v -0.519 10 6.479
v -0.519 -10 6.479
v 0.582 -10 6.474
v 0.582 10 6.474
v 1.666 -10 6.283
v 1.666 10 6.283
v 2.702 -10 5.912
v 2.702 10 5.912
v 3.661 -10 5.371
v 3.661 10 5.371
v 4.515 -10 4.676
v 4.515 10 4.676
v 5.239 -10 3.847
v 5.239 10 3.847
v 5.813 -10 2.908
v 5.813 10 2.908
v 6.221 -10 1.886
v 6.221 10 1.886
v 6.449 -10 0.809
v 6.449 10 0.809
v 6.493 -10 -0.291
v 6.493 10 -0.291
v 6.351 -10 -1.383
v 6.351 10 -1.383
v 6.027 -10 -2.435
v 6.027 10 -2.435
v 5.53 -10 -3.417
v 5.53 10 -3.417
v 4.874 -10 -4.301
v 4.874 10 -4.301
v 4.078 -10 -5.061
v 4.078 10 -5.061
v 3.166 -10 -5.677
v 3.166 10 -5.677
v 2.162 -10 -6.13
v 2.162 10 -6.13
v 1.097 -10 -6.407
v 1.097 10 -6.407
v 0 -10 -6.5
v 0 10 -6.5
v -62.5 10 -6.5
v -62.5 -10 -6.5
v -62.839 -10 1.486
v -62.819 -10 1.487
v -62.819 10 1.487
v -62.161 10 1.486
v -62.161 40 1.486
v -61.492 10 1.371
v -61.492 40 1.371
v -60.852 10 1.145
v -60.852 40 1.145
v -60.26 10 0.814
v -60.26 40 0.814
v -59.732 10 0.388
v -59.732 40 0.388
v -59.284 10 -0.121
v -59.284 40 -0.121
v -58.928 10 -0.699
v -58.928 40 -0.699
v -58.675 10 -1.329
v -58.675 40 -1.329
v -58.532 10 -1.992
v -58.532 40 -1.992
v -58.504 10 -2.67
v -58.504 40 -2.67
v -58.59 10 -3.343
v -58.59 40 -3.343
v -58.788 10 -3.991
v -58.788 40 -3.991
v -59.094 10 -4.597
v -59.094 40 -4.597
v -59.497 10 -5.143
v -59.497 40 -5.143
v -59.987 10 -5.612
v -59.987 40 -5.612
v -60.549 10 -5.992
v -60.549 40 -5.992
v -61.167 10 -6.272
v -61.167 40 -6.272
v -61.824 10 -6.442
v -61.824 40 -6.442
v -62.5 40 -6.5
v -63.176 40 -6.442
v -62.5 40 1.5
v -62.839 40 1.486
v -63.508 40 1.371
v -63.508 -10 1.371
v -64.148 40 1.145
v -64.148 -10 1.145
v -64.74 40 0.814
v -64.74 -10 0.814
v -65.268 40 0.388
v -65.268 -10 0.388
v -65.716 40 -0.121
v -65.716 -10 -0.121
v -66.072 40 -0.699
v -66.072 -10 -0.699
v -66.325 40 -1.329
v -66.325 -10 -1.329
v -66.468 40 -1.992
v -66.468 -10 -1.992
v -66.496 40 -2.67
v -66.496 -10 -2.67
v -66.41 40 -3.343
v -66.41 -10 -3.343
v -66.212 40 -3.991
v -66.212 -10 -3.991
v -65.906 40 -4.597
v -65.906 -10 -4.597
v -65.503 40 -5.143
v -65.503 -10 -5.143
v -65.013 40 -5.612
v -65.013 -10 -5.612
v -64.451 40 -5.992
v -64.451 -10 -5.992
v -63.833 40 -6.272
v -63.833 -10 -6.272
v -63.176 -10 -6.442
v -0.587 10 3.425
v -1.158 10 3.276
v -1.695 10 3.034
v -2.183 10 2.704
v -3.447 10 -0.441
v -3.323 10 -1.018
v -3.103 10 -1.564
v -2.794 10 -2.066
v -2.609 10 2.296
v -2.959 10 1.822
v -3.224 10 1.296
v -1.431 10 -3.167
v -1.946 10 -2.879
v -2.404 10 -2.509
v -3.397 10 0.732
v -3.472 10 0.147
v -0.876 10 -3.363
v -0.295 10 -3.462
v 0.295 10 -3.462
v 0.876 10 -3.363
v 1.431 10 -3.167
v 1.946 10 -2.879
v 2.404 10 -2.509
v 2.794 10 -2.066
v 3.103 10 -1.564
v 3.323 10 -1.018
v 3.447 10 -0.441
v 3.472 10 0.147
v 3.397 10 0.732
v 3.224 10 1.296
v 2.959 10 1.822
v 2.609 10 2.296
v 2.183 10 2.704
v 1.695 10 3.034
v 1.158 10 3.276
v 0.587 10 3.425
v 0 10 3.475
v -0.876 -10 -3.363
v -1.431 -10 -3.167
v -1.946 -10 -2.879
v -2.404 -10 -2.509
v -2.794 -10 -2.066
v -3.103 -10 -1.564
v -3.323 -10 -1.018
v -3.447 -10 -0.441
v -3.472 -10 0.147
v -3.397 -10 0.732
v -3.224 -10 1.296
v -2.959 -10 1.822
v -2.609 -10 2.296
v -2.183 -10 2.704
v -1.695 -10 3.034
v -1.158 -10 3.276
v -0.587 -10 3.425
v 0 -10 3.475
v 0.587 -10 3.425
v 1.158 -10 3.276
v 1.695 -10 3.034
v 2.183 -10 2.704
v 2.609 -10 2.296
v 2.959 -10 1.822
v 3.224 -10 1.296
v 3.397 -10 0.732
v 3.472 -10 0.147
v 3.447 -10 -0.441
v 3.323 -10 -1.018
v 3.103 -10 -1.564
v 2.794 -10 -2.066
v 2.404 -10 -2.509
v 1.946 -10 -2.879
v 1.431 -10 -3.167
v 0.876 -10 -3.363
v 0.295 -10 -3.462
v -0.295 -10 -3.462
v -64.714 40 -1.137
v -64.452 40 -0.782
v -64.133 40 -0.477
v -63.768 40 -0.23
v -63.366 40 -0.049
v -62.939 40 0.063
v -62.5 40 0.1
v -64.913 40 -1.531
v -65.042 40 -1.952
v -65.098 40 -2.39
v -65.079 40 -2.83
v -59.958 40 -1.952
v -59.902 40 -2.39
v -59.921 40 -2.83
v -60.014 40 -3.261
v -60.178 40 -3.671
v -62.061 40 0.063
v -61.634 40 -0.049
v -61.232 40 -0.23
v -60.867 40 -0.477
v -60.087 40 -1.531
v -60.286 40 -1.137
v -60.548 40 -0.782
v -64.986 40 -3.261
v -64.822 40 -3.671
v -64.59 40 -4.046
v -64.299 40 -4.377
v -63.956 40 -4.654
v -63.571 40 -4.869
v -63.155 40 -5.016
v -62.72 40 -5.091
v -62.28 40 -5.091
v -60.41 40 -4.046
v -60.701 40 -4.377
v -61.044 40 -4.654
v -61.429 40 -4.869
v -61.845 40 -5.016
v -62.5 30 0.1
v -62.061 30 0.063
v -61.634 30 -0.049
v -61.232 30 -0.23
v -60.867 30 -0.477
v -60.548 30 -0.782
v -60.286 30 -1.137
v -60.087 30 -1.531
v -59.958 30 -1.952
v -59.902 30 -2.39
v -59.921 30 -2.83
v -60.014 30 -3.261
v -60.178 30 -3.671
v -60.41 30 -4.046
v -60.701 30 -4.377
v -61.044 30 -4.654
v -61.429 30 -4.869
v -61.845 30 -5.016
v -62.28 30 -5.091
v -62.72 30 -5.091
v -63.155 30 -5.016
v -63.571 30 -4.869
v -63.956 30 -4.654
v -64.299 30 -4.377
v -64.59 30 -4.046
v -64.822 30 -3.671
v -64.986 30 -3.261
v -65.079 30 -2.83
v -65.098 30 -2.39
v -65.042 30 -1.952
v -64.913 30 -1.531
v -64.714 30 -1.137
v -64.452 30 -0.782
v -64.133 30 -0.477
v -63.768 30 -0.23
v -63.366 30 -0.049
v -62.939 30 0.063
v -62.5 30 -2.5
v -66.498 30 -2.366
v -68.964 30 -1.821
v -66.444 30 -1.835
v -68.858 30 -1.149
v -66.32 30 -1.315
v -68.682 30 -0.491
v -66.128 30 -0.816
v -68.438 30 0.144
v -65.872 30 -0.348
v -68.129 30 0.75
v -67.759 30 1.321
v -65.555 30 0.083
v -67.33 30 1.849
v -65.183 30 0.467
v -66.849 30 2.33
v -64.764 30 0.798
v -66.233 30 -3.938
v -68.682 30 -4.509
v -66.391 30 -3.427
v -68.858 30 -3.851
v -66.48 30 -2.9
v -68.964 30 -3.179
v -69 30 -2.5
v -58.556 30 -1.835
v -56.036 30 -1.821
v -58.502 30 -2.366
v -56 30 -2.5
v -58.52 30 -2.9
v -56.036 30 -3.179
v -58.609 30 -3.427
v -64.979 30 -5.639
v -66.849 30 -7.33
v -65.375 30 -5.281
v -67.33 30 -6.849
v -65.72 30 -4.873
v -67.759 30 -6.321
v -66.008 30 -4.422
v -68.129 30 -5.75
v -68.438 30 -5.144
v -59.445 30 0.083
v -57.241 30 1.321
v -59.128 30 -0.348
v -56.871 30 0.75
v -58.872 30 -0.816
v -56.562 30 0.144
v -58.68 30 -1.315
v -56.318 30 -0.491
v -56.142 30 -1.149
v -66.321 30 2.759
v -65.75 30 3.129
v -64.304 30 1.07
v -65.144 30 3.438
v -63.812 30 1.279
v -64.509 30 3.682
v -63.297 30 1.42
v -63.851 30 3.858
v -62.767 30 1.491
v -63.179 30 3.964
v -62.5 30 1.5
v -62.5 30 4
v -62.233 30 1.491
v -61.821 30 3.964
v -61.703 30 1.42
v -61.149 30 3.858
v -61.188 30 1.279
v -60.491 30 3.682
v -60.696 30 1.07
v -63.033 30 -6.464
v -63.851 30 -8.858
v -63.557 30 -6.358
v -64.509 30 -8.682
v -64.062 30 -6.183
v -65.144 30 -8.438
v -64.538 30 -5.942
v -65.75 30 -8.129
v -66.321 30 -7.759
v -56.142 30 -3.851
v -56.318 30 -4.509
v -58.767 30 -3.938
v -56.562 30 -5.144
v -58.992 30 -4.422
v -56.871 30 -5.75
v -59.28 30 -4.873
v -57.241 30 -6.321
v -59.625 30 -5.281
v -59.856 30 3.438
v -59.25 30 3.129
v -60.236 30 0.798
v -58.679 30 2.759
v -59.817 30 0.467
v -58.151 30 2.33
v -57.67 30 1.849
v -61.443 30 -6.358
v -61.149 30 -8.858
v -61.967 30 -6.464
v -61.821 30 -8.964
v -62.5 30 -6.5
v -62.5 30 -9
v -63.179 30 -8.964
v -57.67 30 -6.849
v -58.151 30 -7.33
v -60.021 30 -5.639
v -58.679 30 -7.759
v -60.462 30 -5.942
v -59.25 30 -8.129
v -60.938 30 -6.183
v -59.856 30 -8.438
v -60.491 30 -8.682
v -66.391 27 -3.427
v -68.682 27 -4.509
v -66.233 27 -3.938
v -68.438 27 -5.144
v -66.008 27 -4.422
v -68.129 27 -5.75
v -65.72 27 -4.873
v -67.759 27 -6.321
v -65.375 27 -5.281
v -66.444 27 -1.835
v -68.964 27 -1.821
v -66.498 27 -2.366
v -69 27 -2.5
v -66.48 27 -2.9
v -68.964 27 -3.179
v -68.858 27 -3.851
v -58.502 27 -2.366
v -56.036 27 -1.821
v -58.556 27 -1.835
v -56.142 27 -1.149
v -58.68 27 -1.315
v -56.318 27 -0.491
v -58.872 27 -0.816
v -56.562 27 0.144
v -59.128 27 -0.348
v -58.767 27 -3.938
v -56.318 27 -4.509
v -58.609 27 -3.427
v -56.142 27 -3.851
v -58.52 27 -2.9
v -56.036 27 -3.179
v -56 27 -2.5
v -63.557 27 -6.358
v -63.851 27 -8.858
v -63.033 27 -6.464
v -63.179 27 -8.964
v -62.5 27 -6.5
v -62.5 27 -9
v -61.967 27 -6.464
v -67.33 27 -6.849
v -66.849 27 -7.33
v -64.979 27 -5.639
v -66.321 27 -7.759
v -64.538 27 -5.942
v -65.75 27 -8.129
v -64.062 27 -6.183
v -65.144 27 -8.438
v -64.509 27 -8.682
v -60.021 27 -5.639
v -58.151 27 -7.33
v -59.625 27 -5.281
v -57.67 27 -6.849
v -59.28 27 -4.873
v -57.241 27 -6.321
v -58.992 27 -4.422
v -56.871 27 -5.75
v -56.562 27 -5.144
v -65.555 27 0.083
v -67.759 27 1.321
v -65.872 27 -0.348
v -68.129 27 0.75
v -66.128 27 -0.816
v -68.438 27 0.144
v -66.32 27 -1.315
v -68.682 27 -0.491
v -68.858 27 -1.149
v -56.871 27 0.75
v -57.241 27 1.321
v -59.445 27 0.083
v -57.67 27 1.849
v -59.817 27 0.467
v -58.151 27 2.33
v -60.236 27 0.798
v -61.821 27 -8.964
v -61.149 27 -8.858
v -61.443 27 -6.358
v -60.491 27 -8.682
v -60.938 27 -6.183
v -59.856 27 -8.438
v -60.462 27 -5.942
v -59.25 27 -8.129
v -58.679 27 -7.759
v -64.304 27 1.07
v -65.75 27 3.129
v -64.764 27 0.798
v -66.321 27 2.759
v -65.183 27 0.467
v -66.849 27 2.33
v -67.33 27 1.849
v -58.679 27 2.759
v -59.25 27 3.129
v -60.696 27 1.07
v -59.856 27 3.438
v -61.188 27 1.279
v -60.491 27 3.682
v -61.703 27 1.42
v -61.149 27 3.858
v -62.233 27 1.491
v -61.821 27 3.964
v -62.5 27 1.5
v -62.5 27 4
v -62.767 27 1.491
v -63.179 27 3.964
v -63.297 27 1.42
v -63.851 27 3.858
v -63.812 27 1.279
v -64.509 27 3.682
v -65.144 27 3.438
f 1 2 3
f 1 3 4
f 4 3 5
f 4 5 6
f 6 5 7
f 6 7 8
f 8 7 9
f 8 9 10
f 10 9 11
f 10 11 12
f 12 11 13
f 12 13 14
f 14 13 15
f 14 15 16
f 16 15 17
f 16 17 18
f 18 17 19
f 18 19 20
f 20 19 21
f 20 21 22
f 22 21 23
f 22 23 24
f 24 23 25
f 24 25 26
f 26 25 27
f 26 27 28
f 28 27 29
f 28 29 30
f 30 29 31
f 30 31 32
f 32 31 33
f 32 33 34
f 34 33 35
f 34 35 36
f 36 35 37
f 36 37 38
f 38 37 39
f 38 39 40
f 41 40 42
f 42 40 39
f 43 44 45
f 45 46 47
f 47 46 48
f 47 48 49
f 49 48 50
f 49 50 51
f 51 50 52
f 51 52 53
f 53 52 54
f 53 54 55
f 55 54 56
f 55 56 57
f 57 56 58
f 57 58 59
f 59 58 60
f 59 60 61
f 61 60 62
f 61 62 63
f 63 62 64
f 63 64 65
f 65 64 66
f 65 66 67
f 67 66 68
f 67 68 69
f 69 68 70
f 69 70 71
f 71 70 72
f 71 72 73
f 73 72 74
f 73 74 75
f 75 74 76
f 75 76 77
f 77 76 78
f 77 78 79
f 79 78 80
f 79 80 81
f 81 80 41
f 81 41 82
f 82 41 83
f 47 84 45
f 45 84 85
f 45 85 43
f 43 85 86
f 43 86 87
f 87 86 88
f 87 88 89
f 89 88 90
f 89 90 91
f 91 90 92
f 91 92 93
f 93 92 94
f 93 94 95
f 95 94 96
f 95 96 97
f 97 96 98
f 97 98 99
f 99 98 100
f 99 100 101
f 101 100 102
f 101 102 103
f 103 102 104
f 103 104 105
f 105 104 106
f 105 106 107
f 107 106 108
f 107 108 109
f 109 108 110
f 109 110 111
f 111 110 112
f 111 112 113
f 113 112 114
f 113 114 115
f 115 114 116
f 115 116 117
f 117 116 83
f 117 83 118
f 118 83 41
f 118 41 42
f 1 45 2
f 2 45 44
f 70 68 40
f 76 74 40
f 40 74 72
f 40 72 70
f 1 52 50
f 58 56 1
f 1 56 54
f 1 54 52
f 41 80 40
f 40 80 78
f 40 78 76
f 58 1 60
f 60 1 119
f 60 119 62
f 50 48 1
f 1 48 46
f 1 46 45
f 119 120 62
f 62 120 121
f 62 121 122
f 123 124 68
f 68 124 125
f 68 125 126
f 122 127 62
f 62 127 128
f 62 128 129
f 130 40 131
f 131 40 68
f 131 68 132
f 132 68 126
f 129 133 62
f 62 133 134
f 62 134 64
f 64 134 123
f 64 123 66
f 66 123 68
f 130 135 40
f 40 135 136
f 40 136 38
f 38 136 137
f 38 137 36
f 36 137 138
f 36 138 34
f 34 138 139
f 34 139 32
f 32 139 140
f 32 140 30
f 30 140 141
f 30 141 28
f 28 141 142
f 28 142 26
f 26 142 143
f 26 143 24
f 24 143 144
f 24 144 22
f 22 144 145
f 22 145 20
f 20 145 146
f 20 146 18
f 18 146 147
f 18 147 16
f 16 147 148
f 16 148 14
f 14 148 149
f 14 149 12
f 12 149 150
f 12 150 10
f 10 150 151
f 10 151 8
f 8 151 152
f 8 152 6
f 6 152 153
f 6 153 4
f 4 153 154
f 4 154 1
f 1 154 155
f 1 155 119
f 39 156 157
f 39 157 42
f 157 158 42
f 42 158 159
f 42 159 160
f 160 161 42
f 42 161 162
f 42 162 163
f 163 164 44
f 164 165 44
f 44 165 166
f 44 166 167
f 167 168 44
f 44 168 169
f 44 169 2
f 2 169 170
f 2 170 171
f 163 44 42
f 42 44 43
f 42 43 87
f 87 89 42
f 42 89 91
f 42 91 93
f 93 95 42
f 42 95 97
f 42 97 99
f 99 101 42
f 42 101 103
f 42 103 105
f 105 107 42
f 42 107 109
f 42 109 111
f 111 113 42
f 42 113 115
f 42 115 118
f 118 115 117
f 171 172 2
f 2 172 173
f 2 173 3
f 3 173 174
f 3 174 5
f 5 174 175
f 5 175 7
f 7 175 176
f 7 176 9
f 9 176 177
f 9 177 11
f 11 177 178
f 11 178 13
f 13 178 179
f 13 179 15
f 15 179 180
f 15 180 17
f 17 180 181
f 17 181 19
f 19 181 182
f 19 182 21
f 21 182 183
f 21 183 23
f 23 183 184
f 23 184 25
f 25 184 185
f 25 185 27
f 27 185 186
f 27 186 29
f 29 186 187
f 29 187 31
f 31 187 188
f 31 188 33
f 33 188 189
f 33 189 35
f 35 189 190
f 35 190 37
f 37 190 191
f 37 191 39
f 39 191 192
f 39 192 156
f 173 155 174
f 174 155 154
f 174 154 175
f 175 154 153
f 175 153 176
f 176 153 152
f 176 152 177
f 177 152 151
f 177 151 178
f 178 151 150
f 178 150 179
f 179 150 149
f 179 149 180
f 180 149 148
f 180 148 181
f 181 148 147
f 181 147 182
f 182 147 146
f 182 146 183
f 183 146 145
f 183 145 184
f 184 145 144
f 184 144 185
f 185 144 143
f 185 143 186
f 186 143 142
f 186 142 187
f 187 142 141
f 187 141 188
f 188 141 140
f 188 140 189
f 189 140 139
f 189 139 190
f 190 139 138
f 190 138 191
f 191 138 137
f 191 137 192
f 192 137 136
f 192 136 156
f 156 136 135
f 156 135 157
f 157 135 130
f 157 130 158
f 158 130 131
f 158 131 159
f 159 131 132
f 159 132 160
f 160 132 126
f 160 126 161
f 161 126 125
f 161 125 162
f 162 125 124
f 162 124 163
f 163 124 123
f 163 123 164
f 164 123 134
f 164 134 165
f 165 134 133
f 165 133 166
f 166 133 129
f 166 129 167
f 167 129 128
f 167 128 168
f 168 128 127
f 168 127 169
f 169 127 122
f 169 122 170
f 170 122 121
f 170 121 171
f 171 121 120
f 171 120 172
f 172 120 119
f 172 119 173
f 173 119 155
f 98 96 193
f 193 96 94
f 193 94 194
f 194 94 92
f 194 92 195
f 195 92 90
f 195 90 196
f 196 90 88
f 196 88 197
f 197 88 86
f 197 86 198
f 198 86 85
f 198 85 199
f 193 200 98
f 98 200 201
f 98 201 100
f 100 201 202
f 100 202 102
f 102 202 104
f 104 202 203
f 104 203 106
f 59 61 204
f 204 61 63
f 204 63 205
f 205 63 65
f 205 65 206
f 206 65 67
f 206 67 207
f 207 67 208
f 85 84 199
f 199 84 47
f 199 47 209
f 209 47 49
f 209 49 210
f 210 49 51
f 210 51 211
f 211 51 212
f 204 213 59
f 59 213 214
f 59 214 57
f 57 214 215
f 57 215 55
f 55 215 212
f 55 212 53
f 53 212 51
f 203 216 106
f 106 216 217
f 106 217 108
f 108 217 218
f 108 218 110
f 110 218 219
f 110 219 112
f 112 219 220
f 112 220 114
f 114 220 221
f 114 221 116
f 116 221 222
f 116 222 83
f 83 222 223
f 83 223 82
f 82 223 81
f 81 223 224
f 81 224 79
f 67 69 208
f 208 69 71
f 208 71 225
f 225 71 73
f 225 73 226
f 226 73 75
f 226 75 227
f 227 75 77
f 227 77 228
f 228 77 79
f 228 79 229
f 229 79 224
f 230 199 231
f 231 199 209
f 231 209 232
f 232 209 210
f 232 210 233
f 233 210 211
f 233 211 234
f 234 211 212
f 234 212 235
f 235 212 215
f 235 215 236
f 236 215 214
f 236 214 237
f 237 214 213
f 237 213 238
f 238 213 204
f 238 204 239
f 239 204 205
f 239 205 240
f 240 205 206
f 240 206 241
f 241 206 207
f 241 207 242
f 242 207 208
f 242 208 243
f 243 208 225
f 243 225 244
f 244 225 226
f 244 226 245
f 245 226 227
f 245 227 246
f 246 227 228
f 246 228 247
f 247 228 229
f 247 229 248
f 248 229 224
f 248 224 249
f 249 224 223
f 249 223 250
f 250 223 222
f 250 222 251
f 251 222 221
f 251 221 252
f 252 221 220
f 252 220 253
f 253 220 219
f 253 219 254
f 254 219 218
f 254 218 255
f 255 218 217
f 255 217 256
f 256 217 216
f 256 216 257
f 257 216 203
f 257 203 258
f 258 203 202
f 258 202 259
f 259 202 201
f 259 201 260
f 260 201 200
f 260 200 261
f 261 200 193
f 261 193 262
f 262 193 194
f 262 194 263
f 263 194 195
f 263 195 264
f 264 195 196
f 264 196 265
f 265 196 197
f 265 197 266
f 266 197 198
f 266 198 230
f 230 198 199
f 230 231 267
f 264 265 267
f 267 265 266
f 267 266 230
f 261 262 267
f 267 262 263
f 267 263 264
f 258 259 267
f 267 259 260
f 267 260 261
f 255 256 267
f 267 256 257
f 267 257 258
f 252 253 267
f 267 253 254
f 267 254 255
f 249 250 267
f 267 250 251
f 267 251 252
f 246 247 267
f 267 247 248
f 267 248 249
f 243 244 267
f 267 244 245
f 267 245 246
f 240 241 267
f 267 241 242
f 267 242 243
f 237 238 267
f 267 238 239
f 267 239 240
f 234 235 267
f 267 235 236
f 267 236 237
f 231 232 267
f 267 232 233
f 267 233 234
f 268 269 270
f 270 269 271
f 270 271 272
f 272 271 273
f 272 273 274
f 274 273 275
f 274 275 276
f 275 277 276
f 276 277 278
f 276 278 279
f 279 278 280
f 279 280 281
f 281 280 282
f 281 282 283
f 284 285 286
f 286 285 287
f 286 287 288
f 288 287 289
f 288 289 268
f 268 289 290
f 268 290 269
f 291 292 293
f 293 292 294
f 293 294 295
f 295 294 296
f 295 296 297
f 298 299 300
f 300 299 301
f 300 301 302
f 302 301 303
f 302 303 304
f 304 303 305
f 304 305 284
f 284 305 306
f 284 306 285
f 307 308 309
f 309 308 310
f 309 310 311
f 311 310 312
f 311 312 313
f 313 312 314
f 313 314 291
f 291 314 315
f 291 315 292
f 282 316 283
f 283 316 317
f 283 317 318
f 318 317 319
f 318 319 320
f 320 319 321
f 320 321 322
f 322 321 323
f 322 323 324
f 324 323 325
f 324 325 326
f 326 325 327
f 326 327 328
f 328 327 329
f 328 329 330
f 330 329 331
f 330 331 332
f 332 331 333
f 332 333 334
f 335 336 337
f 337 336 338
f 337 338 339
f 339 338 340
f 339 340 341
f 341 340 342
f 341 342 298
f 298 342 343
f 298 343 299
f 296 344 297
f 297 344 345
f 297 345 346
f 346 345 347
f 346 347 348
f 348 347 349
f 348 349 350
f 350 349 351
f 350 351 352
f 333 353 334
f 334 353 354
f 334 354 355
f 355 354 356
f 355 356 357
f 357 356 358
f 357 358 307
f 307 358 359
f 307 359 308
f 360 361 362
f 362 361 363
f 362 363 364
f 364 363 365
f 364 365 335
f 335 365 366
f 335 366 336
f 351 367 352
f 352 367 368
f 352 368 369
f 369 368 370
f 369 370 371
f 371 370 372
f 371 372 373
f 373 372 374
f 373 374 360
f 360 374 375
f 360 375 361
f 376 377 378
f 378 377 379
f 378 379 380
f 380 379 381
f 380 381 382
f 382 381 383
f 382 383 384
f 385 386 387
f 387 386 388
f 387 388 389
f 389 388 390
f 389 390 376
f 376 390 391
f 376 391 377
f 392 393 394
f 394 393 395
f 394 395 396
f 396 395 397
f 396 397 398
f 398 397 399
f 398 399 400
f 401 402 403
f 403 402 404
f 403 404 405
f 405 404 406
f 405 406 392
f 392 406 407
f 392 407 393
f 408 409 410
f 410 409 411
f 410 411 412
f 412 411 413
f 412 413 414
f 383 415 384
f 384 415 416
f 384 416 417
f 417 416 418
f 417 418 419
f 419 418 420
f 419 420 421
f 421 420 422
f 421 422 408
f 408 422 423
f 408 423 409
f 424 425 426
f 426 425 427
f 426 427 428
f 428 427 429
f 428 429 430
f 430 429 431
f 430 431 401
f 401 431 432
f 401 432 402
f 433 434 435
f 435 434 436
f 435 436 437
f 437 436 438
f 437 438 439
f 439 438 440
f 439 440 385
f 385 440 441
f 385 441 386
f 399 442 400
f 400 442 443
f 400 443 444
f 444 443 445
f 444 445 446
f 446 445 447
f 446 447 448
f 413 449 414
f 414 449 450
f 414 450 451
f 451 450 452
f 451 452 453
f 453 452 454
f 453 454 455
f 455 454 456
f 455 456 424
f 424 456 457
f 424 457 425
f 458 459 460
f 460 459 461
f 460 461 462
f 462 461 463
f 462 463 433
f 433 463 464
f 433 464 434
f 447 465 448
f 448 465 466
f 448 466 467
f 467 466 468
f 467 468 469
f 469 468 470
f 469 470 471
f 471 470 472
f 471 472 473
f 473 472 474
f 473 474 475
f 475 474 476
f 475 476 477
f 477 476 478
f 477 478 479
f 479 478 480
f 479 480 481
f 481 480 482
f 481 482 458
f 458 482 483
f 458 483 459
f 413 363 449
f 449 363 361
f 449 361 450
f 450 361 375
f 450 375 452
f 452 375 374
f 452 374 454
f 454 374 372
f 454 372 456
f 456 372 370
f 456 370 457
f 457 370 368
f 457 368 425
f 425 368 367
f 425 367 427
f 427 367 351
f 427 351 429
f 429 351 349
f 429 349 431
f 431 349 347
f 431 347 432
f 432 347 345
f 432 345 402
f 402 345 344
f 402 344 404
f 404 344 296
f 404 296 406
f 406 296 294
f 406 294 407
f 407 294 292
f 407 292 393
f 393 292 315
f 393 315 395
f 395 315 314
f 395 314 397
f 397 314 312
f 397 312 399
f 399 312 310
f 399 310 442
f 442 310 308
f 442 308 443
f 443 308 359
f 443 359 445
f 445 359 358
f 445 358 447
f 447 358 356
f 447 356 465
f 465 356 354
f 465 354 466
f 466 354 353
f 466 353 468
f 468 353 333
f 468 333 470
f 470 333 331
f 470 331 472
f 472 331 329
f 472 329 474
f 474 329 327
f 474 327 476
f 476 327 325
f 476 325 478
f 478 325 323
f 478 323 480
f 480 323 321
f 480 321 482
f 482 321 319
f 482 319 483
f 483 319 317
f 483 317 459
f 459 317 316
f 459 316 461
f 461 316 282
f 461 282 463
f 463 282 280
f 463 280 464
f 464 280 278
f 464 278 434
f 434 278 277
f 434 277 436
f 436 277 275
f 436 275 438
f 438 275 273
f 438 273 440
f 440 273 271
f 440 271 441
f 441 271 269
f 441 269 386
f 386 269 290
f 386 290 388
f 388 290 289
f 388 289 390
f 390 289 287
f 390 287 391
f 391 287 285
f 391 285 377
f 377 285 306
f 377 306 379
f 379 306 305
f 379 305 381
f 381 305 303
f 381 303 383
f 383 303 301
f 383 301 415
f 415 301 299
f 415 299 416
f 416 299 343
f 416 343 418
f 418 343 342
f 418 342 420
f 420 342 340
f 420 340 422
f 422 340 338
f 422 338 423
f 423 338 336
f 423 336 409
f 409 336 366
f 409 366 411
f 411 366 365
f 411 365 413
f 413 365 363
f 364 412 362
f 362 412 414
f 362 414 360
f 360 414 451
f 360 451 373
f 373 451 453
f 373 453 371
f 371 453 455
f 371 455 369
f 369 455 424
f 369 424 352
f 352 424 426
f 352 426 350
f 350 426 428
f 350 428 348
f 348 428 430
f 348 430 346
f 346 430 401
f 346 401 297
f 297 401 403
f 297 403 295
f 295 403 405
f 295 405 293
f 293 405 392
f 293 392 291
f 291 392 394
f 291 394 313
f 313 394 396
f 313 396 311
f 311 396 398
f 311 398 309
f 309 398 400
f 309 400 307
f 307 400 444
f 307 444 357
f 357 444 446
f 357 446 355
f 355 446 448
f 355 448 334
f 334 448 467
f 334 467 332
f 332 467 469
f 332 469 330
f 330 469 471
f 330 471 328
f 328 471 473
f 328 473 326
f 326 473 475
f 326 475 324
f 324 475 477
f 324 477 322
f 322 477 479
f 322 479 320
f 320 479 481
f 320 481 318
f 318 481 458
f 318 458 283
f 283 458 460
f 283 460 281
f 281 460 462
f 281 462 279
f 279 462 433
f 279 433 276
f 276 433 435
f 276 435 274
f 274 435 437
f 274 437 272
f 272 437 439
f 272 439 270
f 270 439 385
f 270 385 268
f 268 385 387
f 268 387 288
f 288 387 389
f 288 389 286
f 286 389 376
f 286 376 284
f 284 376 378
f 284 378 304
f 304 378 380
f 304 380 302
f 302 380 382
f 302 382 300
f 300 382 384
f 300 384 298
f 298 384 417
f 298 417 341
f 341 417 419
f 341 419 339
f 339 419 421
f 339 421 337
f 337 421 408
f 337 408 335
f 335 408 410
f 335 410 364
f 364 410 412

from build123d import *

# Parameters (mm, degrees)
SALIENTE_EXTRUIR1_DEPTH = 10
CROQUIS2_R              = 3.475
CORTAR_EXTRUIR1_DEPTH   = 21
CROQUIS3_R              = 4
SALIENTE_EXTRUIR2_DEPTH = 30
CROQUIS4_R              = 2.6
CORTAR_EXTRUIR2_DEPTH   = 10
SALIENTE_EXTRUIR3_START = -13
CROQUIS6_R              = 6.5
CROQUIS6_R_2            = 4
SALIENTE_EXTRUIR3_DEPTH = 3


with BuildPart() as part:
    # Croquis1 → Saliente-Extruir1 (new body, symmetric)
    with BuildSketch(Plane(origin=(0, 0, 0), x_dir=(1, 0, 0), z_dir=(0, 1, 0))):
        with BuildLine():
            Line((-62.5, 6.5), (0, 6.5))
            ThreePointArc((0, 6.5), (6.494806232, -0.259792249), (-0.519169329, -6.479233227))
            Line((-0.519169329, -6.479233227), (-62.819488818, -1.487220447))
            ThreePointArc((-62.819488818, -1.487220447), (-66.496803835, 2.659872153), (-62.5, 6.5))
        make_face()
    extrude(amount=SALIENTE_EXTRUIR1_DEPTH, both=True)

    # Croquis2 → Cortar-Extruir1 (cut, through all)
    with BuildSketch(Plane(origin=(0, 10, 0), x_dir=(1, 0, 0), z_dir=(0, 1, 0))):
        Circle(CROQUIS2_R)
    extrude(amount=-CORTAR_EXTRUIR1_DEPTH, mode=Mode.SUBTRACT)

    # Croquis3 → Saliente-Extruir2 (add)
    with BuildSketch(Plane(origin=(0, 10, 0), x_dir=(1, 0, 0), z_dir=(0, 1, 0))):
        with Locations((-62.5, 2.5)):
            Circle(CROQUIS3_R)
    extrude(amount=SALIENTE_EXTRUIR2_DEPTH)

    # Croquis4 → Cortar-Extruir2 (cut)
    with BuildSketch(Plane(origin=(0, 40, 0), x_dir=(1, 0, 0), z_dir=(0, 1, 0))):
        with Locations((-62.5, 2.5)):
            Circle(CROQUIS4_R)
    extrude(amount=-CORTAR_EXTRUIR2_DEPTH, mode=Mode.SUBTRACT)


with BuildPart() as body_2:
    # Croquis6 → Saliente-Extruir3 (new body)
    with BuildSketch(Plane(origin=(0, 40, 0), x_dir=(1, 0, 0), z_dir=(0, 1, 0)).offset(SALIENTE_EXTRUIR3_START)):
        with Locations((-62.5, 2.5)):
            Circle(CROQUIS6_R)
        with Locations((-62.5, 2.5)):
            Circle(CROQUIS6_R_2, mode=Mode.SUBTRACT)
    extrude(amount=SALIENTE_EXTRUIR3_DEPTH)


solid = Compound([part.part, body_2.part])
